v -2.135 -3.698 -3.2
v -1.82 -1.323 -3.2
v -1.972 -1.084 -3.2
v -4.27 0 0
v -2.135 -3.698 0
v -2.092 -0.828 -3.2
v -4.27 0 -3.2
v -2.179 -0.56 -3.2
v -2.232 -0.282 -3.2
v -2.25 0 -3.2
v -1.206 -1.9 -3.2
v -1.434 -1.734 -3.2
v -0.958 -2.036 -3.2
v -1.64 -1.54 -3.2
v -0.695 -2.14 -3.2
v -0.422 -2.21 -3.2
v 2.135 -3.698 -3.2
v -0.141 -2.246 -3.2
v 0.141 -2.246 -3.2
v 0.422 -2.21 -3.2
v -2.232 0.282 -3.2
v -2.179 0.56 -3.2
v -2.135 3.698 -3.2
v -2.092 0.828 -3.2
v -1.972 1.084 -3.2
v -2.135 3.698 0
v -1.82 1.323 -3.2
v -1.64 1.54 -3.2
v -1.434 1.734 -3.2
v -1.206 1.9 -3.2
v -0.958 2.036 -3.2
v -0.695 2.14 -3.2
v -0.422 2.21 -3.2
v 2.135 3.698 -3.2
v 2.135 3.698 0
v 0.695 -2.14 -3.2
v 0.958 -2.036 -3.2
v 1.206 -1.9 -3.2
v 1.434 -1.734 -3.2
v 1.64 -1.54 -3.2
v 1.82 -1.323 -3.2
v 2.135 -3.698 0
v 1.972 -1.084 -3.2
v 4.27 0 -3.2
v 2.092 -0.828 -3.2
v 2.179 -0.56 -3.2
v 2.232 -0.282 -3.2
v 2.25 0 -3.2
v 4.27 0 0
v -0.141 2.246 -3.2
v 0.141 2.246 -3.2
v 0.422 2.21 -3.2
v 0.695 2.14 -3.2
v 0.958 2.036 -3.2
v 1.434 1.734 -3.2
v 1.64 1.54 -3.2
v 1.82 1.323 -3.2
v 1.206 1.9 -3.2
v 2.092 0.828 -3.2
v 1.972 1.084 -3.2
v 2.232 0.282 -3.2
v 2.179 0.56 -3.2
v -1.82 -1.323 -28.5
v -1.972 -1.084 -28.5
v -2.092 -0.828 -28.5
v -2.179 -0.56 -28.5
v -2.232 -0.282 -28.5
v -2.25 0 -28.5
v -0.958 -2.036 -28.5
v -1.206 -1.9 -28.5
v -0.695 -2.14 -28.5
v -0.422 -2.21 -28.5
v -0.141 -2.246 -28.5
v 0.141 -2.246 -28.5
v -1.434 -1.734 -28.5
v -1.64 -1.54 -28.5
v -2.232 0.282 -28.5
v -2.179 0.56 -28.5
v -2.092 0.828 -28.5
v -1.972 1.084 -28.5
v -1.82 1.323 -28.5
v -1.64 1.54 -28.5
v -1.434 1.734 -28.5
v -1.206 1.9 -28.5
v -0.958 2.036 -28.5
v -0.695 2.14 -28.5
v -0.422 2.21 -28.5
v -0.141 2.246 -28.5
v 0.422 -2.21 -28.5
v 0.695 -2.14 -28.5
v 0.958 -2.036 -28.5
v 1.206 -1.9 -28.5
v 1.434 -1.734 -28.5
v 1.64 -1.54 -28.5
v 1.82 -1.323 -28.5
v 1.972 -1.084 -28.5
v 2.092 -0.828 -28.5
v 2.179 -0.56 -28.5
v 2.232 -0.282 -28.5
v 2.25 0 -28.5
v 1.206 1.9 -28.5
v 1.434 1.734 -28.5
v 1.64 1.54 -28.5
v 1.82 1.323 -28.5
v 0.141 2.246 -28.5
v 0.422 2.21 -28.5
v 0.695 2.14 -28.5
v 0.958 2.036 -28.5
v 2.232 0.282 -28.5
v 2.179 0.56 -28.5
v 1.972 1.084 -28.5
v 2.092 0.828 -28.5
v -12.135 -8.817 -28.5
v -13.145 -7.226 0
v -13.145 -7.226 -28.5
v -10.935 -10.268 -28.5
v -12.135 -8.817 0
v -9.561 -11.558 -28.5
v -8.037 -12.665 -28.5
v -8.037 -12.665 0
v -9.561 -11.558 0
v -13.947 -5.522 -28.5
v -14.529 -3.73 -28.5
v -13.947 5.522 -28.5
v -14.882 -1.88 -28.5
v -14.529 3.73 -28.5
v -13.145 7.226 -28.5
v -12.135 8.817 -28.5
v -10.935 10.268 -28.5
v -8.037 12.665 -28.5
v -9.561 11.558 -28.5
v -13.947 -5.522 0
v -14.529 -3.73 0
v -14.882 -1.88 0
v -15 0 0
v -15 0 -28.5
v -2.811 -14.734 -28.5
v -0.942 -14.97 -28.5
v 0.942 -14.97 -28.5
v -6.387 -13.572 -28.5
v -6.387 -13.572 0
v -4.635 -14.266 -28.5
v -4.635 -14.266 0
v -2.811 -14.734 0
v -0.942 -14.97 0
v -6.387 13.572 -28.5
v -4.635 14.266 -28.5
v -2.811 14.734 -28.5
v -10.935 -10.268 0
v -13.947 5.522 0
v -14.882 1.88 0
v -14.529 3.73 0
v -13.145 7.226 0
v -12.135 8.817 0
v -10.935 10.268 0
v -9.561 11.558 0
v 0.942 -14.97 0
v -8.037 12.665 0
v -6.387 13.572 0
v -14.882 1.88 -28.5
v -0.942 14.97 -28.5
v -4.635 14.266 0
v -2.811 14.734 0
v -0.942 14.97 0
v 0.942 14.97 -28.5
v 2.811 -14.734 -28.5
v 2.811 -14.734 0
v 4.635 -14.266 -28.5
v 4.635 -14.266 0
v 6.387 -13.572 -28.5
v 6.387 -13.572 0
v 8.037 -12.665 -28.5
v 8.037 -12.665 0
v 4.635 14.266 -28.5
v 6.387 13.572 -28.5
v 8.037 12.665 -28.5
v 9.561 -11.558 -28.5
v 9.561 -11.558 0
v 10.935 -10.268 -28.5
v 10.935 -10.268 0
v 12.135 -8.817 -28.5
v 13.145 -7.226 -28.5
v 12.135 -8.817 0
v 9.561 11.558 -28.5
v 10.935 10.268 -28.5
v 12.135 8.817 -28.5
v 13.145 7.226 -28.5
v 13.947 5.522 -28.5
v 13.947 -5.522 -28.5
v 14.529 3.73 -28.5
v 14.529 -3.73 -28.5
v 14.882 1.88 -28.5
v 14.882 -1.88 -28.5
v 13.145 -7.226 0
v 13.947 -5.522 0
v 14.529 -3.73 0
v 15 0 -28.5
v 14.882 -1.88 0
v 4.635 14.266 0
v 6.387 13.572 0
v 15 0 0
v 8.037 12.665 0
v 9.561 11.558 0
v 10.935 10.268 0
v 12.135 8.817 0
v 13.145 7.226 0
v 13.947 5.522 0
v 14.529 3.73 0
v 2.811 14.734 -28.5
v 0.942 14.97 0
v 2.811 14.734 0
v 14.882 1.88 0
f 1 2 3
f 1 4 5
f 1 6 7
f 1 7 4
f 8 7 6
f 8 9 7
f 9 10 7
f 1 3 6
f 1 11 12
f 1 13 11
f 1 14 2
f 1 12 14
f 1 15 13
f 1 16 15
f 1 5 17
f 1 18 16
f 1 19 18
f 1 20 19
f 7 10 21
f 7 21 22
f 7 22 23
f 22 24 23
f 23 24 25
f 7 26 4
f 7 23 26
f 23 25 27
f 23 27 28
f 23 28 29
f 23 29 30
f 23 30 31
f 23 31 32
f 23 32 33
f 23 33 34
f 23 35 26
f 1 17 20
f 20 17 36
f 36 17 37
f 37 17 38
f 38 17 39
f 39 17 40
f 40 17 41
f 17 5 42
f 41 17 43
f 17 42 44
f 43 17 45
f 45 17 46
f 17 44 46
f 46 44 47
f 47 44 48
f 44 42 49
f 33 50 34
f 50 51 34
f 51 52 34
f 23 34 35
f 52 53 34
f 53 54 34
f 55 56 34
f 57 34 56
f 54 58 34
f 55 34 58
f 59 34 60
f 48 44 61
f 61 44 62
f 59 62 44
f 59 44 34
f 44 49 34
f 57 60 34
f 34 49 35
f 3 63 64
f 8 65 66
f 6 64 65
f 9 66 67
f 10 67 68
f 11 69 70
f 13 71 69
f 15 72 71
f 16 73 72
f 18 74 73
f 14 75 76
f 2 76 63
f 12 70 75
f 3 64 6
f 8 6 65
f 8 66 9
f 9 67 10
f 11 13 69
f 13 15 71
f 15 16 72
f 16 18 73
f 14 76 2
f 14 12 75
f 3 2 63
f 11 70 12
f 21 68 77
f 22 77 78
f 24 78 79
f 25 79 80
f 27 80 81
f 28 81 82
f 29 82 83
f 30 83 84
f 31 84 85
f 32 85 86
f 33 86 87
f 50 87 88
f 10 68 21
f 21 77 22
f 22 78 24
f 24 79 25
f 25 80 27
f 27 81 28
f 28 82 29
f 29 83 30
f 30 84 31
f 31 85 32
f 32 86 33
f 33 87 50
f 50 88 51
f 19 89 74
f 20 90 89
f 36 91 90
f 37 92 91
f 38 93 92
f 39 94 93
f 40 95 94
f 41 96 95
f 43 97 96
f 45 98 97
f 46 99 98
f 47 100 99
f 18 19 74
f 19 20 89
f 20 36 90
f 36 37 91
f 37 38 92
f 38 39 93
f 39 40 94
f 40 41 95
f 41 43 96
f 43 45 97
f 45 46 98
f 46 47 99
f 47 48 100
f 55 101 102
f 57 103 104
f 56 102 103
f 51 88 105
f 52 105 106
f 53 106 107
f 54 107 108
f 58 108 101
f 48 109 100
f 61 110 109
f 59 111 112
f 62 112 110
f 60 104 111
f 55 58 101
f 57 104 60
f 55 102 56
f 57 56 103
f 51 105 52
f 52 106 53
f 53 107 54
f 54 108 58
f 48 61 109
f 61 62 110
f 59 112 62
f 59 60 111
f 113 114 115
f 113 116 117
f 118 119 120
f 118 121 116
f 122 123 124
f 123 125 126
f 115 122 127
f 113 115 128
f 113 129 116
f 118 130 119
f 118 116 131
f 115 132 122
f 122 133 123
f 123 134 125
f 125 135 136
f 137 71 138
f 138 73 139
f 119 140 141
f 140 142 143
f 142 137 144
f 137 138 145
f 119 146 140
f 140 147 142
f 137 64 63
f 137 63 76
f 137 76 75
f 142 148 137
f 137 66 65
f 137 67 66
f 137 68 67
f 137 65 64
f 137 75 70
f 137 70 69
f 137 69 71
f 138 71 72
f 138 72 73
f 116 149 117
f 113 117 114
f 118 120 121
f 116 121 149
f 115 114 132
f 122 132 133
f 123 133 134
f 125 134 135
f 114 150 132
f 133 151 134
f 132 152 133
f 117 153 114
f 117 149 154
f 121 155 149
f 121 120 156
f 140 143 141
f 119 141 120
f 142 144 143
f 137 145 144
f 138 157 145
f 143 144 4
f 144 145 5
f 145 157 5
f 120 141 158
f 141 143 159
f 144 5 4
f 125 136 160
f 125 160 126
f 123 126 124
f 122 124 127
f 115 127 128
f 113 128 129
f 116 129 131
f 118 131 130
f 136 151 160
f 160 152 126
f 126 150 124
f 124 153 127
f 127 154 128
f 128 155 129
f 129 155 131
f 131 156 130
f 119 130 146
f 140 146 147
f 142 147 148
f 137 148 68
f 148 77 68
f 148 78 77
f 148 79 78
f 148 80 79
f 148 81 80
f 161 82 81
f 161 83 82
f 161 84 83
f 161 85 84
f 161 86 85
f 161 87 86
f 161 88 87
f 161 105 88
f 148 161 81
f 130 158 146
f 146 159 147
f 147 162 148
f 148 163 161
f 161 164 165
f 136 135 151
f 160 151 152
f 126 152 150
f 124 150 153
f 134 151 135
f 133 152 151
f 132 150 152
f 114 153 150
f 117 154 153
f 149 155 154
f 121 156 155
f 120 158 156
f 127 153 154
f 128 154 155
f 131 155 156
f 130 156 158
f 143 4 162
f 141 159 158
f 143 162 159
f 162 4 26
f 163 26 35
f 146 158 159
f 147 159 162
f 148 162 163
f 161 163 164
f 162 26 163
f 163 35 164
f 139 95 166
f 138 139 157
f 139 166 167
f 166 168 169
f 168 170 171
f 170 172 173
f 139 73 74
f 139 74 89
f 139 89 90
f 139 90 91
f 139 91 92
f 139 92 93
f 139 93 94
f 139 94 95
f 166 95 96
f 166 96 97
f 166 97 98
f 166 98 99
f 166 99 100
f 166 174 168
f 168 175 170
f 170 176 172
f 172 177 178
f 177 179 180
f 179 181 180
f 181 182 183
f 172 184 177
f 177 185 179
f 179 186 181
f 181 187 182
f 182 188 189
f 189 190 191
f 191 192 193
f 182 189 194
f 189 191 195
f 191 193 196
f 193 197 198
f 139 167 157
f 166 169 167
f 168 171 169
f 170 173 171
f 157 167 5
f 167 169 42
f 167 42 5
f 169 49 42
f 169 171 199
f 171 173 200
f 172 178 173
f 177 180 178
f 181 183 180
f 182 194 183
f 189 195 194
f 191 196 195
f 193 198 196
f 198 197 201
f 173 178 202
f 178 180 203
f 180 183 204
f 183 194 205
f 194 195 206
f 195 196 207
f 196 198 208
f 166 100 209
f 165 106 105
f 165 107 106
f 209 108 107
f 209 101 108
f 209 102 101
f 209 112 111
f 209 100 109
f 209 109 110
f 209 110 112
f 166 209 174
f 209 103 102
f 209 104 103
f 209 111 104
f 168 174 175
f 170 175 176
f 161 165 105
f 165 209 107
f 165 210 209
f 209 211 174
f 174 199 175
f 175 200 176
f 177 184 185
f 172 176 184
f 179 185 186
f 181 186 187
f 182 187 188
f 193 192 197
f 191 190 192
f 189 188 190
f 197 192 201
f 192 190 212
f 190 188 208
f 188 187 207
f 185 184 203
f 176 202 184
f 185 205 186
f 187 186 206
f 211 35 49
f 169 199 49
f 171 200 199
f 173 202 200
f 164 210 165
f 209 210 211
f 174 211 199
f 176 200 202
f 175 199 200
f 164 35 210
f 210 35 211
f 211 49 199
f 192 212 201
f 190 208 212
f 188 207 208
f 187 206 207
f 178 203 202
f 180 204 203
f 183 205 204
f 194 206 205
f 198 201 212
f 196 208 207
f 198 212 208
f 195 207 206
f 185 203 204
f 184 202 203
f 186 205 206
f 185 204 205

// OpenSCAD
$fn = 50;


difference() {
	union() {
		translate(v = [0, 0, -28.5000000000]) {
			cylinder(h = 28.5000000000, r = 15.0000000000);
		}
	}
	union() {
		translate(v = [0, 0, 0]) {
			rotate(a = [0, 0, 0]) {
				difference() {
					union() {
						translate(v = [0, 0, -3.2000000000]) {
							linear_extrude(height = 3.2000000000) {
								polygon(points = [[4.2698000000, 0.0000000000], [2.1349000000, 3.6977552691], [-2.1349000000, 3.6977552691], [-4.2698000000, 0.0000000000], [-2.1349000000, -3.6977552691], [2.1349000000, -3.6977552691]]);
							}
						}
					}
					union();
				}
			}
		}
		#translate(v = [0, 0, -100.0000000000]) {
			cylinder(h = 200, r = 2.2500000000);
		}
	}
}
